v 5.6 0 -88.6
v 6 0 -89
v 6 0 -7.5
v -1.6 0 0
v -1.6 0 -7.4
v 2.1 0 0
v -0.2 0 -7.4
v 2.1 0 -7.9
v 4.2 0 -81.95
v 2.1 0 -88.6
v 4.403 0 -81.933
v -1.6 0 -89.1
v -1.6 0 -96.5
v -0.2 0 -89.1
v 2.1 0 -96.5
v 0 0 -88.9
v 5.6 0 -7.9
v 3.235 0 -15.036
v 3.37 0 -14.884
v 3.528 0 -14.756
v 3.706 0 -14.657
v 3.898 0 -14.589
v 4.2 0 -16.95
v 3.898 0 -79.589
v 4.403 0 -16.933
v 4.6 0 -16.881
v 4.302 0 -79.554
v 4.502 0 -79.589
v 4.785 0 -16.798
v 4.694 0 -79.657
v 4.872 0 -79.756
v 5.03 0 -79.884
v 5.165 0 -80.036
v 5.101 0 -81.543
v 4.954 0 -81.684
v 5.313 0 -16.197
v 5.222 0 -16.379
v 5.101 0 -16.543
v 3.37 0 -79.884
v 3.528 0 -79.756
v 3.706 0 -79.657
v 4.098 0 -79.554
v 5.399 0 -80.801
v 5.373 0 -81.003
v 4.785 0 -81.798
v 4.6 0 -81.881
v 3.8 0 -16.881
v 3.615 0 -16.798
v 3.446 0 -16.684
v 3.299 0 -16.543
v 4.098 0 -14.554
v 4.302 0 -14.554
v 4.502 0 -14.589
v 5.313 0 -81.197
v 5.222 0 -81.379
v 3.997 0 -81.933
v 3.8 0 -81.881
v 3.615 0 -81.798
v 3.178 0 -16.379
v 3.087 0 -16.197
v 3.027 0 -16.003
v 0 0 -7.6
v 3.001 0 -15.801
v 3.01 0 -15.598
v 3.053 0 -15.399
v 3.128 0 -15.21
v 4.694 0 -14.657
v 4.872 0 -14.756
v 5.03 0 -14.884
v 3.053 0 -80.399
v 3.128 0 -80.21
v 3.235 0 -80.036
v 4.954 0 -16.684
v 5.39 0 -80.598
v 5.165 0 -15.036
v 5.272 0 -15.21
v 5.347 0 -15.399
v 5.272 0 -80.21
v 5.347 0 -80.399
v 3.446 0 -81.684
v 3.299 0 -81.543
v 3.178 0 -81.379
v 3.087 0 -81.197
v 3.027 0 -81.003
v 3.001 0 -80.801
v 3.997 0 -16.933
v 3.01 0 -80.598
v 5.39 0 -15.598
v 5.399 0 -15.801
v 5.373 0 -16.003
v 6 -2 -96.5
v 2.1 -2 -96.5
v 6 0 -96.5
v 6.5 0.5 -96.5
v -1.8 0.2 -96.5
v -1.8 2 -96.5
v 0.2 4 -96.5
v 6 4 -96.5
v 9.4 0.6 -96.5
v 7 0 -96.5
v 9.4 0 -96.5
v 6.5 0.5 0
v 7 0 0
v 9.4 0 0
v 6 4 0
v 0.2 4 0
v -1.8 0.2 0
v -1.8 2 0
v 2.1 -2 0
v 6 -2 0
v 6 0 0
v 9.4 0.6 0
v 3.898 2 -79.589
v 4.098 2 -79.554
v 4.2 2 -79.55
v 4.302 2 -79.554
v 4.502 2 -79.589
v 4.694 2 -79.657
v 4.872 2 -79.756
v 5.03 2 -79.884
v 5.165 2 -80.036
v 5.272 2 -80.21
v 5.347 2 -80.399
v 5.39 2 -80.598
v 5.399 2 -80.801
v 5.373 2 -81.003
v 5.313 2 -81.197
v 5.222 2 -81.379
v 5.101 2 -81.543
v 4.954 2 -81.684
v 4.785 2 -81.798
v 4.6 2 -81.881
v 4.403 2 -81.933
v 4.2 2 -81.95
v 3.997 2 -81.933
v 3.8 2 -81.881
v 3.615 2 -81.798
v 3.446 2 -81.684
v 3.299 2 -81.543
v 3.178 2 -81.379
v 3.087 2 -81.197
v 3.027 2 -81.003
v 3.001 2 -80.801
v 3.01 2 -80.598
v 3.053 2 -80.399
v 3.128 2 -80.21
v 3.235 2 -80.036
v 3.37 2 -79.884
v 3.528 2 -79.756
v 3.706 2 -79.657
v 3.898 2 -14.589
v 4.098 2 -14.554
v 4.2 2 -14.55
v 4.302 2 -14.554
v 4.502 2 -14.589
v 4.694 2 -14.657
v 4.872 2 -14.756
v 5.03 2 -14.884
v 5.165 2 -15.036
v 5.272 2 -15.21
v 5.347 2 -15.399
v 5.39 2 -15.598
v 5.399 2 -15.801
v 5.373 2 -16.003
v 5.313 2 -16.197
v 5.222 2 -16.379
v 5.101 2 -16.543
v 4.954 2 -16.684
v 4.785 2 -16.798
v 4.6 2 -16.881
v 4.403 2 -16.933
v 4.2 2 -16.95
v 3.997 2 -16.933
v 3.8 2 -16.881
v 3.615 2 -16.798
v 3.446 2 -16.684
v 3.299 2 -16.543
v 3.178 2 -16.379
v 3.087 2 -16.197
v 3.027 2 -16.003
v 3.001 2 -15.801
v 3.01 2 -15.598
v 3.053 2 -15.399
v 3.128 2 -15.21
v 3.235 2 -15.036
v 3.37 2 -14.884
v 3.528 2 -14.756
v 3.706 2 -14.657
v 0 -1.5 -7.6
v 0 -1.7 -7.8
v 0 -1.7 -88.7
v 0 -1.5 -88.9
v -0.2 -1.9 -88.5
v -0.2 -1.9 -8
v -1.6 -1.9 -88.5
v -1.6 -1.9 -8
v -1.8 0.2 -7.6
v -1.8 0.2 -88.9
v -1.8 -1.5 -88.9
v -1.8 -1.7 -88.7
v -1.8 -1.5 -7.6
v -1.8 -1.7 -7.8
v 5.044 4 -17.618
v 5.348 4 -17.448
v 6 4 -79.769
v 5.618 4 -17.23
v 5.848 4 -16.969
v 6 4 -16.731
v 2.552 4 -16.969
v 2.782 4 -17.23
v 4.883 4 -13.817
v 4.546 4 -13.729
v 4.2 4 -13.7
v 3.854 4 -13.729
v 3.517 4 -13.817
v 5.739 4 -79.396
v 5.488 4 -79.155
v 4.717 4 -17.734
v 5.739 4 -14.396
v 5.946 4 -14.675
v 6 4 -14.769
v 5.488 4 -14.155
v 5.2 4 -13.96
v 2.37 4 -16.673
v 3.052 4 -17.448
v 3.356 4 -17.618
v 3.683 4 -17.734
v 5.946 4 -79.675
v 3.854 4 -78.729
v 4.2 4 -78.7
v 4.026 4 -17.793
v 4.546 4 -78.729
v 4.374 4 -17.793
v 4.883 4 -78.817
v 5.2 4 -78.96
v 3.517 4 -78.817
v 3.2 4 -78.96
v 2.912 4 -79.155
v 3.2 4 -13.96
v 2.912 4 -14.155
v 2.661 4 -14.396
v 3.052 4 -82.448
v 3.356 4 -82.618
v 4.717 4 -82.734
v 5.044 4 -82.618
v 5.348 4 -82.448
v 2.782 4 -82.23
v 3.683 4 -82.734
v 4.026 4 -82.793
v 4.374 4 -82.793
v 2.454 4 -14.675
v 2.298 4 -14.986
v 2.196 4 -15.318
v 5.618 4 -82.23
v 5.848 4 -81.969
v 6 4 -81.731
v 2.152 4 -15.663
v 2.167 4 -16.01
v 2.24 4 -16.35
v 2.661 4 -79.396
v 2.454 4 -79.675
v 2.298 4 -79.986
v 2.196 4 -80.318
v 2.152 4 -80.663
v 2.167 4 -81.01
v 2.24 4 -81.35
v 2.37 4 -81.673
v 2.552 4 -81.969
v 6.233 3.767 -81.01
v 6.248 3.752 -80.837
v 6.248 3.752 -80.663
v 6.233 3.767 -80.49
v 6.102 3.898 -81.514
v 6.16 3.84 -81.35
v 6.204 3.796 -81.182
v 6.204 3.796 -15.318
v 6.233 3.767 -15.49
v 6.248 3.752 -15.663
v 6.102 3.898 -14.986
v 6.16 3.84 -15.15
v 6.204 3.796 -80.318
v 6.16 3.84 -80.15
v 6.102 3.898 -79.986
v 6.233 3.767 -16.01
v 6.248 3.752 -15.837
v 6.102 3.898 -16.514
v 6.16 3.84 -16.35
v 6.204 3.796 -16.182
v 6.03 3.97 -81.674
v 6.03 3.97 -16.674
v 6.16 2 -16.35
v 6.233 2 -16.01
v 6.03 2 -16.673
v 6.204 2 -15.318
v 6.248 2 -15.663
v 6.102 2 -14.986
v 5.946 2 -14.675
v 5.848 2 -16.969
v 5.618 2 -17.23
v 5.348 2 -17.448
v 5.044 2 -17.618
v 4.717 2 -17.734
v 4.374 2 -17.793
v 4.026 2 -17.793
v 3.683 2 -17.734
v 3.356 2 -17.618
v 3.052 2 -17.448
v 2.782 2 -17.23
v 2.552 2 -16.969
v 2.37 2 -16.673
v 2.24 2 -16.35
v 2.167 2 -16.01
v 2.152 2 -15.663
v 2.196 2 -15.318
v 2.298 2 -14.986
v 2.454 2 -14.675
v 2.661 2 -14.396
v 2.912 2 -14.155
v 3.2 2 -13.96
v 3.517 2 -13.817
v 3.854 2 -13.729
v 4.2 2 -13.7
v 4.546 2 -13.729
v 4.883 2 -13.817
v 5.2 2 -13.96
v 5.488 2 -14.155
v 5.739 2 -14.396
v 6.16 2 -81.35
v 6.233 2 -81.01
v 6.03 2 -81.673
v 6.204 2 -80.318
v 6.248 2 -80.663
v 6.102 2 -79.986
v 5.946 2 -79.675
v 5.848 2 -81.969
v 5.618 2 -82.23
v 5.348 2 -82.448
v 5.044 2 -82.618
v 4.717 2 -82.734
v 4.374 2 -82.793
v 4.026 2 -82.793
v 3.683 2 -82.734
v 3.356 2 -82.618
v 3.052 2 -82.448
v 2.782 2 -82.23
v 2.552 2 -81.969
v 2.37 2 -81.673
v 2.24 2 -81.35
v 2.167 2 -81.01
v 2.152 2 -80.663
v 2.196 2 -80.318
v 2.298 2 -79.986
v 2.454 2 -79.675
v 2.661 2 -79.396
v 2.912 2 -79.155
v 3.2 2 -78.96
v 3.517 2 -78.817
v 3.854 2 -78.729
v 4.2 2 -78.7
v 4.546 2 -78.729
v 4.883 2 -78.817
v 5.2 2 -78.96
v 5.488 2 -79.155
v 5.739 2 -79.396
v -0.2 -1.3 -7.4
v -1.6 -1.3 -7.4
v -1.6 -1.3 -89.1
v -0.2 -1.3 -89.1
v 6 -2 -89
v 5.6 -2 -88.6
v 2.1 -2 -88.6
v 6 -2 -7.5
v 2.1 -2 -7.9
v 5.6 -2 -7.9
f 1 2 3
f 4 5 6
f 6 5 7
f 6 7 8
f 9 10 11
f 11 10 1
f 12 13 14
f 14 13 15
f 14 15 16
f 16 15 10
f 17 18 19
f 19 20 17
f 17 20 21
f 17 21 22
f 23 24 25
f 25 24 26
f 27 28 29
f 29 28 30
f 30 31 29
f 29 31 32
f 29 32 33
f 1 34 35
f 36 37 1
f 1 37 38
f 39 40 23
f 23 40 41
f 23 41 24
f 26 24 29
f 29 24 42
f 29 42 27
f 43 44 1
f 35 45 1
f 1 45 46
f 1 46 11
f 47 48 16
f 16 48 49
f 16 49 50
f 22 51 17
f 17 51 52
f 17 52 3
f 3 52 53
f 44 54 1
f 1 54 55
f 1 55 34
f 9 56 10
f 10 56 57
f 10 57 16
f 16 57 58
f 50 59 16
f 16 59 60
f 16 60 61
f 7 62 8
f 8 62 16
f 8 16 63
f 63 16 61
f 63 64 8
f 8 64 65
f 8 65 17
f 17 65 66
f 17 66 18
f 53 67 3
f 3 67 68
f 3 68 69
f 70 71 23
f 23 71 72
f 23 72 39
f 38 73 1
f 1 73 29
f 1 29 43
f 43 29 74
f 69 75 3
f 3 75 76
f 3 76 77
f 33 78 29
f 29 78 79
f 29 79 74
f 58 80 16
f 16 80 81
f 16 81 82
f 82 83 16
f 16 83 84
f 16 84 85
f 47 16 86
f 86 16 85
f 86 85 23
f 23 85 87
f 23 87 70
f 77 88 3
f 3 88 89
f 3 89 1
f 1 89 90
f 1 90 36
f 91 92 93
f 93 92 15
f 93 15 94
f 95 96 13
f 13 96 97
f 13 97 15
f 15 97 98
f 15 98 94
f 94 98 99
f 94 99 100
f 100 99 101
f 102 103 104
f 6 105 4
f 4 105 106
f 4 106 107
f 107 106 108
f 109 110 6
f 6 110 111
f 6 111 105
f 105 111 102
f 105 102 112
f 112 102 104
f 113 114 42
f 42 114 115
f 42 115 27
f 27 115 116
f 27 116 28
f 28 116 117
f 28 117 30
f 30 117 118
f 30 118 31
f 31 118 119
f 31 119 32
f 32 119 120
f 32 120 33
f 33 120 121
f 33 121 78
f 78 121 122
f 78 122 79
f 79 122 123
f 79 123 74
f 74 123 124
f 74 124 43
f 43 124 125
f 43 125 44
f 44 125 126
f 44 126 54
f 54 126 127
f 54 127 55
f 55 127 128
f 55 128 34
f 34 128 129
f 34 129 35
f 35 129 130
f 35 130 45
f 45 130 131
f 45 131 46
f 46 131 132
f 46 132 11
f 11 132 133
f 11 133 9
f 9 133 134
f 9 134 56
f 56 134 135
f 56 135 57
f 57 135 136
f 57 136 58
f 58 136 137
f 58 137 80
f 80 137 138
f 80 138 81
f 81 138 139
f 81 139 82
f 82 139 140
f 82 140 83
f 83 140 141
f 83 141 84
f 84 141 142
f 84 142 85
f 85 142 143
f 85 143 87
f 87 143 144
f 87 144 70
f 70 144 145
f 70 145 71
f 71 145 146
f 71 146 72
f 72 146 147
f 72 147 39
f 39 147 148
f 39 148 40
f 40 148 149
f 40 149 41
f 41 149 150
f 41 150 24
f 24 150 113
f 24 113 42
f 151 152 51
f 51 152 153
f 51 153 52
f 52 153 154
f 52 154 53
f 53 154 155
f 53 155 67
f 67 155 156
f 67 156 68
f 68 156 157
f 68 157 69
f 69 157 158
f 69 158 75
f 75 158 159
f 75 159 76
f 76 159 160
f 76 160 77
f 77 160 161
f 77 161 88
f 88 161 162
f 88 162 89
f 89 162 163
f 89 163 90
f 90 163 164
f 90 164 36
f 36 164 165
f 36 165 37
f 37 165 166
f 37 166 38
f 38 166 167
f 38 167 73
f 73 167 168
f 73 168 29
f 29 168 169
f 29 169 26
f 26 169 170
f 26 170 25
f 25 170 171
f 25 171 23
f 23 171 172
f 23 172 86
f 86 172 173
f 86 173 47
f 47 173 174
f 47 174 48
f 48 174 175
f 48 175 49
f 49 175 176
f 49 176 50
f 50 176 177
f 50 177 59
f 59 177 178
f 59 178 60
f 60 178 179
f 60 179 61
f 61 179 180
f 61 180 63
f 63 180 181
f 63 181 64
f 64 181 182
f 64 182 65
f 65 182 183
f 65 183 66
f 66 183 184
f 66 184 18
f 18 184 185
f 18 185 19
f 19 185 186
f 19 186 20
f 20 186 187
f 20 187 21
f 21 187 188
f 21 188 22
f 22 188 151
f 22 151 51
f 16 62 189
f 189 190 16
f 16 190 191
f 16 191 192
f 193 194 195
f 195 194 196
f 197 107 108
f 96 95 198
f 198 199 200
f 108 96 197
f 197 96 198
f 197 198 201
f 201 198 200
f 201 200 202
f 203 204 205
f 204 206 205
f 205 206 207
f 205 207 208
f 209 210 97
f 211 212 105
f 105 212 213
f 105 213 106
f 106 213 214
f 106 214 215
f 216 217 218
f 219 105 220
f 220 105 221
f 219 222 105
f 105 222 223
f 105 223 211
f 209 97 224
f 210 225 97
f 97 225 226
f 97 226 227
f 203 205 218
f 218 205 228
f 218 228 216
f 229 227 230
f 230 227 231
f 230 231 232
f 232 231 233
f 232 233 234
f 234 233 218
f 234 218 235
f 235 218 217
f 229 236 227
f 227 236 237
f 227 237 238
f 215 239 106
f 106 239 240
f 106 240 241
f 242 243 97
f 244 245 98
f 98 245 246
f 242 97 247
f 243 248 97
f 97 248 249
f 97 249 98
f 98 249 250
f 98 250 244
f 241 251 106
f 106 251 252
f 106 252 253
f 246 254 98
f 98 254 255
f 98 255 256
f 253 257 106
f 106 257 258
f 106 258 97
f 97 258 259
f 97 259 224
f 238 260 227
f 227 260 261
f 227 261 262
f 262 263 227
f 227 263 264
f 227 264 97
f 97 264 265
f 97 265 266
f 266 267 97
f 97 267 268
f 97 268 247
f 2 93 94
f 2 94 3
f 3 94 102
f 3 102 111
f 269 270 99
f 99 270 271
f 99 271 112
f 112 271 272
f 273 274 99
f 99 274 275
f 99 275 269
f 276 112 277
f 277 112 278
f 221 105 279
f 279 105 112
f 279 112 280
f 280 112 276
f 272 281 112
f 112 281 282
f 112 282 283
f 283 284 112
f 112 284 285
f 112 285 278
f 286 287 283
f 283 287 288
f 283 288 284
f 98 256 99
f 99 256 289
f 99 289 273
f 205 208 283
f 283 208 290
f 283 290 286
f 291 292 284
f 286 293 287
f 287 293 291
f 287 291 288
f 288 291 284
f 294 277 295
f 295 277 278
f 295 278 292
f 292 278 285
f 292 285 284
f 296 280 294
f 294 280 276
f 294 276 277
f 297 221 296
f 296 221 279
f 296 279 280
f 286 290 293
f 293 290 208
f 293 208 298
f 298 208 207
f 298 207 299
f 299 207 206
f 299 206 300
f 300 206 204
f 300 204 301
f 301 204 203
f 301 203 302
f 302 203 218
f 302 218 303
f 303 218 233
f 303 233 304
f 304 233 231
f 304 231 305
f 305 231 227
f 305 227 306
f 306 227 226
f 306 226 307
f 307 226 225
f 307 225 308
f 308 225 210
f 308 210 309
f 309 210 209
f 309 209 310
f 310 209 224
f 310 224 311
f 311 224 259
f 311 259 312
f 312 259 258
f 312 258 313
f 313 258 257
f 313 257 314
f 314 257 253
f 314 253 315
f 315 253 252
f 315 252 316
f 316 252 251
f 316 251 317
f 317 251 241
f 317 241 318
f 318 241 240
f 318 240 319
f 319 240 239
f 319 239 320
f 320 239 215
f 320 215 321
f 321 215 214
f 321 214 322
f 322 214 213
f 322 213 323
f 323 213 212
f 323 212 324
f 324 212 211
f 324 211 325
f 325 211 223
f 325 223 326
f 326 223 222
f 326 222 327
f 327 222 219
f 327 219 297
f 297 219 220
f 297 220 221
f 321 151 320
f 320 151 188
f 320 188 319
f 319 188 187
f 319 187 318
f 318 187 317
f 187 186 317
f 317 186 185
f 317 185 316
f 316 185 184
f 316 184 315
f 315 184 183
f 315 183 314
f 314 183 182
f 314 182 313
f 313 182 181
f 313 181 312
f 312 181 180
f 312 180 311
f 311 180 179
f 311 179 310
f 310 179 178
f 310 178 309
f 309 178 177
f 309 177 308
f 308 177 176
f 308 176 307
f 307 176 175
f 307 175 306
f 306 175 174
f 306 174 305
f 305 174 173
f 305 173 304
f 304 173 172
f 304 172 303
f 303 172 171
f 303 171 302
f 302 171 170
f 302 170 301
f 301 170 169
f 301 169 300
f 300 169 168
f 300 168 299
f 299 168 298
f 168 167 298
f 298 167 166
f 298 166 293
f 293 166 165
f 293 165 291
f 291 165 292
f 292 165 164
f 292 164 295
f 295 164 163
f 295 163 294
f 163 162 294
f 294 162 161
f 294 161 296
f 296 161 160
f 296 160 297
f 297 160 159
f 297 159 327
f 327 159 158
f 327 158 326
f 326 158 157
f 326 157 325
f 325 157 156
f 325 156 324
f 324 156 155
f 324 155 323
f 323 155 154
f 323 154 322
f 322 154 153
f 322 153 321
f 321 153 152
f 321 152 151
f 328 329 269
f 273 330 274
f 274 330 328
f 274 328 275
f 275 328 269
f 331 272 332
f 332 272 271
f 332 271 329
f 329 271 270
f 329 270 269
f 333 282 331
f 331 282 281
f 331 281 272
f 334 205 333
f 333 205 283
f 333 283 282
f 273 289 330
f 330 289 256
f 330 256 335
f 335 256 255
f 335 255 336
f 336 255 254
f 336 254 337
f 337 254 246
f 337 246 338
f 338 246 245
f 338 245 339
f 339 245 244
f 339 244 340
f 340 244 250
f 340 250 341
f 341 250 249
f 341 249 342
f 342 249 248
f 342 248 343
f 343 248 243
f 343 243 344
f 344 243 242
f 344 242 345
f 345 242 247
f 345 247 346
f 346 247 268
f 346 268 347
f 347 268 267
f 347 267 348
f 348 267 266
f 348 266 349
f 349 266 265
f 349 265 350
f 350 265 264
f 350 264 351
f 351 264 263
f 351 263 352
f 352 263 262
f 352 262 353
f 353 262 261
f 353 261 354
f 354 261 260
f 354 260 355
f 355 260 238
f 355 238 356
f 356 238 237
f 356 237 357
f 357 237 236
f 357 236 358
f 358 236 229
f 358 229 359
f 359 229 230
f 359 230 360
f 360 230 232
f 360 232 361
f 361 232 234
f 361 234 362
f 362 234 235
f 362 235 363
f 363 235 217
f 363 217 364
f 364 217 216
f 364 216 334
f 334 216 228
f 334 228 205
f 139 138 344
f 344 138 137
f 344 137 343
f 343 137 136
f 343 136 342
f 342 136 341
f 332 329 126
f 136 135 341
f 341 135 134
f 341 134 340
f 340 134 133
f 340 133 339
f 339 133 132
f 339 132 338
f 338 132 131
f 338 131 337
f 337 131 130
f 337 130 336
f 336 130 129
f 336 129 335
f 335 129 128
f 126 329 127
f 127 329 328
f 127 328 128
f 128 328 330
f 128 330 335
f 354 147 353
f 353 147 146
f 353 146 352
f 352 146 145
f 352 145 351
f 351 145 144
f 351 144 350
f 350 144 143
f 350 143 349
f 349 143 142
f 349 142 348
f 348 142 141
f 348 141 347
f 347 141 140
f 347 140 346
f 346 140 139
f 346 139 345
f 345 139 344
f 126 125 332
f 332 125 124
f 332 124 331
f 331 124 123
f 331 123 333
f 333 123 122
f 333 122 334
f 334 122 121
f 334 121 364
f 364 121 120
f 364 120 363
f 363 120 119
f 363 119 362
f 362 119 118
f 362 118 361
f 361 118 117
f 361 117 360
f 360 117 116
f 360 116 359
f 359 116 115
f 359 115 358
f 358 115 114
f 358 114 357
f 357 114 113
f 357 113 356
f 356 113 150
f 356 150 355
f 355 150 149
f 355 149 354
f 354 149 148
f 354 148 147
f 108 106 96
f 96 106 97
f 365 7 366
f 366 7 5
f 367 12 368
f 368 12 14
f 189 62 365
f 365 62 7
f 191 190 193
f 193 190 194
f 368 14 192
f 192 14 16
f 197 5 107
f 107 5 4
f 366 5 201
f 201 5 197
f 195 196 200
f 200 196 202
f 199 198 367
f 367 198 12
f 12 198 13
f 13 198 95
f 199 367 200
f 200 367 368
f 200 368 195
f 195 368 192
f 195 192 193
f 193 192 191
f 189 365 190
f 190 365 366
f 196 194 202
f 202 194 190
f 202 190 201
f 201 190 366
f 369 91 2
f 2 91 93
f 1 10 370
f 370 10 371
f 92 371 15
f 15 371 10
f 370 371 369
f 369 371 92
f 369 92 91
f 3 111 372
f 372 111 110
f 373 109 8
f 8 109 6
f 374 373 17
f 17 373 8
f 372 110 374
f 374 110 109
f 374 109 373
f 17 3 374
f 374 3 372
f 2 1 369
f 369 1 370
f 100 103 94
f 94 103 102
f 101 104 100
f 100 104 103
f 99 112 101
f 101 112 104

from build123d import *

# Parameters (mm, degrees)
EXTRUDE_1_DEPTH          = 96.5
CHAMFER_1_SIZE           = 1
CHAMFER_2_SIZE           = 1
CUT_EXTRUDE_1_DEPTH      = 97.93327602
CUT_EXTRUDE_1_DEPTH_BACK = 10
SKETCH_2_R               = 1.2
SKETCH_2_3_R             = 2.05
CUT_EXTRUDE_2_DEPTH      = 2
CHAMFER_3_SIZE           = 2
SKETCH_3_W               = 1.8
SKETCH_3_H               = 7.4
CUT_EXTRUDE_3_DEPTH      = 1.9
CHAMFER_4_SIZE           = 0.2
CHAMFER_5_SIZE           = 0.6
SKETCH_4_W               = 3.9
SKETCH_4_H               = 7.9
EXTRUDE_2_DEPTH          = 2
CHAMFER_6_SIZE           = 0.4
EXTRUDE_3_DEPTH          = 96.5


with BuildPart() as part:
    # 草图1 → 凸台-拉伸1 (new body)
    with BuildSketch(Plane.XY):
        Polygon((0, 0), (7, 0), (7, 4), (0, 4), (-1.8, 4), (-1.8, -1.9), (0, -1.9), align=None)
    extrude(amount=-EXTRUDE_1_DEPTH)

    # 倒角1
    chamfer_1_edges = [part.edges().sort_by_distance(p)[0] for p in [
        (7, 0, -48.25),
    ]]
    chamfer(chamfer_1_edges, length=CHAMFER_1_SIZE)

    # 倒角2
    chamfer_2_edges = [part.edges().sort_by_distance(p)[0] for p in [
        (7, 4, -48.25),
    ]]
    chamfer(chamfer_2_edges, length=CHAMFER_2_SIZE)

    # 草图2 → 切除-拉伸1 (cut, two sides: drawn at the far end of the back side and taken through both)
    with BuildSketch(Plane(origin=(0, 4, 0), x_dir=(1, 0, 0), z_dir=(0, 1, 0)).offset(-CUT_EXTRUDE_1_DEPTH_BACK)):
        with Locations(Location((4.2, 80.75, 0), (0, 0, 90))):
            Circle(SKETCH_2_R)
        with Locations(Location((4.2, 15.75, 0), (0, 0, 90))):
            Circle(SKETCH_2_R)
    extrude(amount=CUT_EXTRUDE_1_DEPTH + CUT_EXTRUDE_1_DEPTH_BACK, mode=Mode.SUBTRACT)

    # 草图2<3> → 切除-拉伸2 (cut)
    with BuildSketch(Plane(origin=(0, 4, 0), x_dir=(1, 0, 0), z_dir=(0, 1, 0))):
        with Locations(Location((4.2, 80.75, 0), (0, 0, 270))):
            Circle(SKETCH_2_3_R)
        with Locations(Location((4.2, 15.75, 0), (0, 0, 270))):
            Circle(SKETCH_2_3_R)
    extrude(amount=-CUT_EXTRUDE_2_DEPTH, mode=Mode.SUBTRACT)

    # 倒角3
    chamfer_3_edges = [part.edges().sort_by_distance(p)[0] for p in [
        (-1.8, 4, -48.25),
    ]]
    chamfer(chamfer_3_edges, length=CHAMFER_3_SIZE)

    # 草图3 → 切除-拉伸3 (cut)
    with BuildSketch(Plane.XZ.offset(1.9)):
        with Locations((-0.9, -92.8)):
            Rectangle(SKETCH_3_W, SKETCH_3_H)
        with Locations((-0.9, -3.7)):
            Rectangle(SKETCH_3_W, SKETCH_3_H)
    extrude(amount=-CUT_EXTRUDE_3_DEPTH, mode=Mode.SUBTRACT)

    # 倒角4
    chamfer_4_edges = [part.edges().sort_by_distance(p)[0] for p in [
        (-1.8, -1.9, -48.25),
        (0, -1.9, -48.25),
        (-1.8, -0.95, -89.1),
        (0, -0.95, -89.1),
        (-1.8, 0, -92.8),
        (-1.8, -0.95, -7.4),
        (0, -0.95, -7.4),
        (-1.8, 0, -3.7),
    ]]
    chamfer(chamfer_4_edges, length=CHAMFER_4_SIZE)

    # 倒角5
    # the kernel refuses this chamfer: 0.6 mm, written as the material it takes off along each edge
    with BuildSketch(Plane(origin=(1.343009793, -1.9, -89.1), x_dir=(0, 0.9996219169112965, -0.027495876610595982), z_dir=(-1, 0, 0))) as chamfer_5_piece_1:
        Polygon((CHAMFER_5_SIZE * 0.999621916911, -CHAMFER_5_SIZE * 0.0274958766106), (-CHAMFER_5_SIZE * 0.0274958766106, -CHAMFER_5_SIZE * 0.999621916911), (0, 0), align=None)
    extrude(amount=4.486019586, mode=Mode.SUBTRACT)
    with BuildSketch(Plane(origin=(1.343009793, -1.9, -7.4), x_dir=(0, 0.9996219169112968, 0.027495876610585925), z_dir=(-1, 0, 0))) as chamfer_5_piece_2:
        Polygon((CHAMFER_5_SIZE * 0.999621916911, CHAMFER_5_SIZE * 0.0274958766106), (-CHAMFER_5_SIZE * 0.0274958766106, CHAMFER_5_SIZE * 0.999621916911), (0, 0), align=None)
    extrude(amount=4.486019586, mode=Mode.SUBTRACT)

    # 草图4 → 凸台-拉伸2 (add)
    with BuildSketch(Plane.XZ):
        with Locations((4.05, -92.55)):
            Rectangle(SKETCH_4_W, SKETCH_4_H)
        with Locations((4.05, -3.95)):
            Rectangle(SKETCH_4_W, SKETCH_4_H)
    extrude(amount=EXTRUDE_2_DEPTH)

    # 倒角6
    chamfer_6_edges = [part.edges().sort_by_distance(p)[0] for p in [
        (6, -1, -88.6),
        (6, -1, -7.9),
    ]]
    chamfer(chamfer_6_edges, length=CHAMFER_6_SIZE)

    # 草图5 → 凸台-拉伸3 (add)
    with BuildSketch(Plane.XY):
        Polygon((7, 3), (9.4, 0.6), (9.4, 0), (7, 0), (6.5, 0.5), (7, 1), align=None)
    extrude(amount=-EXTRUDE_3_DEPTH)


solid = part.part
